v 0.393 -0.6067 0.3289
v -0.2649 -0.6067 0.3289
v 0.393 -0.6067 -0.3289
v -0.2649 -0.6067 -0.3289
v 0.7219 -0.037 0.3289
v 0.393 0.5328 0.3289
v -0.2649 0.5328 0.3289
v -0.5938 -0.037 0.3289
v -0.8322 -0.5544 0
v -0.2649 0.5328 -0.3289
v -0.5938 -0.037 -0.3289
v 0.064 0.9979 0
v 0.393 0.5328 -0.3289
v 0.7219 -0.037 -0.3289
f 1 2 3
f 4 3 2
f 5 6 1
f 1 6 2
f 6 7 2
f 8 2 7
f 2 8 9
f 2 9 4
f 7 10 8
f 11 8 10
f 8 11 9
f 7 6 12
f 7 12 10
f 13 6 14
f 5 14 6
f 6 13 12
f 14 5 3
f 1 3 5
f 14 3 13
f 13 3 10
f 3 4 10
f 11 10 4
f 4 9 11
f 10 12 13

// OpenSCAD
polyhedron( points = [[-0.26491443334669, -0.606689512395196, 0.328932873297781], [-0.593847306653919, -0.0369610634686956, 0.328932873297781], [-0.264914433295532, 0.532767385310128, 0.328932873297781], [0.39295131328482, 0.532767385251052, 0.328932873297781], [0.721884186540893, -0.0369610635868391, 0.328932873297781], [0.392951313233664, -0.606689512395196, 0.328932873297781], [-0.264914433317154, -0.606689512344038, -0.328932873282573], [-0.593847306594848, -0.0369610634686937, -0.328932873282573], [-0.264914433265996, 0.532767385258966, -0.328932873282573], [0.392951313255288, 0.53276738519989, -0.328932873282573], [0.721884186481824, -0.0369610635868391, -0.328932873282573], [0.392951313233664, -0.606689512344038, -0.328932873312111], [-0.832239719609487, -0.554415953147384, -3.08546598172674e-11], [0.0640184400534708, 0.997948715716882, -3.08572891769836e-11]], faces = [[0, 6, 11, 5], [0, 5, 4, 3, 2, 1], [0, 1, 12], [0, 12, 6], [1, 2, 8, 7], [1, 7, 12], [2, 3, 13], [2, 13, 8], [3, 4, 10, 9], [3, 9, 13], [4, 5, 11, 10], [6, 7, 8, 9, 10, 11], [6, 12, 7], [8, 13, 9]]);
